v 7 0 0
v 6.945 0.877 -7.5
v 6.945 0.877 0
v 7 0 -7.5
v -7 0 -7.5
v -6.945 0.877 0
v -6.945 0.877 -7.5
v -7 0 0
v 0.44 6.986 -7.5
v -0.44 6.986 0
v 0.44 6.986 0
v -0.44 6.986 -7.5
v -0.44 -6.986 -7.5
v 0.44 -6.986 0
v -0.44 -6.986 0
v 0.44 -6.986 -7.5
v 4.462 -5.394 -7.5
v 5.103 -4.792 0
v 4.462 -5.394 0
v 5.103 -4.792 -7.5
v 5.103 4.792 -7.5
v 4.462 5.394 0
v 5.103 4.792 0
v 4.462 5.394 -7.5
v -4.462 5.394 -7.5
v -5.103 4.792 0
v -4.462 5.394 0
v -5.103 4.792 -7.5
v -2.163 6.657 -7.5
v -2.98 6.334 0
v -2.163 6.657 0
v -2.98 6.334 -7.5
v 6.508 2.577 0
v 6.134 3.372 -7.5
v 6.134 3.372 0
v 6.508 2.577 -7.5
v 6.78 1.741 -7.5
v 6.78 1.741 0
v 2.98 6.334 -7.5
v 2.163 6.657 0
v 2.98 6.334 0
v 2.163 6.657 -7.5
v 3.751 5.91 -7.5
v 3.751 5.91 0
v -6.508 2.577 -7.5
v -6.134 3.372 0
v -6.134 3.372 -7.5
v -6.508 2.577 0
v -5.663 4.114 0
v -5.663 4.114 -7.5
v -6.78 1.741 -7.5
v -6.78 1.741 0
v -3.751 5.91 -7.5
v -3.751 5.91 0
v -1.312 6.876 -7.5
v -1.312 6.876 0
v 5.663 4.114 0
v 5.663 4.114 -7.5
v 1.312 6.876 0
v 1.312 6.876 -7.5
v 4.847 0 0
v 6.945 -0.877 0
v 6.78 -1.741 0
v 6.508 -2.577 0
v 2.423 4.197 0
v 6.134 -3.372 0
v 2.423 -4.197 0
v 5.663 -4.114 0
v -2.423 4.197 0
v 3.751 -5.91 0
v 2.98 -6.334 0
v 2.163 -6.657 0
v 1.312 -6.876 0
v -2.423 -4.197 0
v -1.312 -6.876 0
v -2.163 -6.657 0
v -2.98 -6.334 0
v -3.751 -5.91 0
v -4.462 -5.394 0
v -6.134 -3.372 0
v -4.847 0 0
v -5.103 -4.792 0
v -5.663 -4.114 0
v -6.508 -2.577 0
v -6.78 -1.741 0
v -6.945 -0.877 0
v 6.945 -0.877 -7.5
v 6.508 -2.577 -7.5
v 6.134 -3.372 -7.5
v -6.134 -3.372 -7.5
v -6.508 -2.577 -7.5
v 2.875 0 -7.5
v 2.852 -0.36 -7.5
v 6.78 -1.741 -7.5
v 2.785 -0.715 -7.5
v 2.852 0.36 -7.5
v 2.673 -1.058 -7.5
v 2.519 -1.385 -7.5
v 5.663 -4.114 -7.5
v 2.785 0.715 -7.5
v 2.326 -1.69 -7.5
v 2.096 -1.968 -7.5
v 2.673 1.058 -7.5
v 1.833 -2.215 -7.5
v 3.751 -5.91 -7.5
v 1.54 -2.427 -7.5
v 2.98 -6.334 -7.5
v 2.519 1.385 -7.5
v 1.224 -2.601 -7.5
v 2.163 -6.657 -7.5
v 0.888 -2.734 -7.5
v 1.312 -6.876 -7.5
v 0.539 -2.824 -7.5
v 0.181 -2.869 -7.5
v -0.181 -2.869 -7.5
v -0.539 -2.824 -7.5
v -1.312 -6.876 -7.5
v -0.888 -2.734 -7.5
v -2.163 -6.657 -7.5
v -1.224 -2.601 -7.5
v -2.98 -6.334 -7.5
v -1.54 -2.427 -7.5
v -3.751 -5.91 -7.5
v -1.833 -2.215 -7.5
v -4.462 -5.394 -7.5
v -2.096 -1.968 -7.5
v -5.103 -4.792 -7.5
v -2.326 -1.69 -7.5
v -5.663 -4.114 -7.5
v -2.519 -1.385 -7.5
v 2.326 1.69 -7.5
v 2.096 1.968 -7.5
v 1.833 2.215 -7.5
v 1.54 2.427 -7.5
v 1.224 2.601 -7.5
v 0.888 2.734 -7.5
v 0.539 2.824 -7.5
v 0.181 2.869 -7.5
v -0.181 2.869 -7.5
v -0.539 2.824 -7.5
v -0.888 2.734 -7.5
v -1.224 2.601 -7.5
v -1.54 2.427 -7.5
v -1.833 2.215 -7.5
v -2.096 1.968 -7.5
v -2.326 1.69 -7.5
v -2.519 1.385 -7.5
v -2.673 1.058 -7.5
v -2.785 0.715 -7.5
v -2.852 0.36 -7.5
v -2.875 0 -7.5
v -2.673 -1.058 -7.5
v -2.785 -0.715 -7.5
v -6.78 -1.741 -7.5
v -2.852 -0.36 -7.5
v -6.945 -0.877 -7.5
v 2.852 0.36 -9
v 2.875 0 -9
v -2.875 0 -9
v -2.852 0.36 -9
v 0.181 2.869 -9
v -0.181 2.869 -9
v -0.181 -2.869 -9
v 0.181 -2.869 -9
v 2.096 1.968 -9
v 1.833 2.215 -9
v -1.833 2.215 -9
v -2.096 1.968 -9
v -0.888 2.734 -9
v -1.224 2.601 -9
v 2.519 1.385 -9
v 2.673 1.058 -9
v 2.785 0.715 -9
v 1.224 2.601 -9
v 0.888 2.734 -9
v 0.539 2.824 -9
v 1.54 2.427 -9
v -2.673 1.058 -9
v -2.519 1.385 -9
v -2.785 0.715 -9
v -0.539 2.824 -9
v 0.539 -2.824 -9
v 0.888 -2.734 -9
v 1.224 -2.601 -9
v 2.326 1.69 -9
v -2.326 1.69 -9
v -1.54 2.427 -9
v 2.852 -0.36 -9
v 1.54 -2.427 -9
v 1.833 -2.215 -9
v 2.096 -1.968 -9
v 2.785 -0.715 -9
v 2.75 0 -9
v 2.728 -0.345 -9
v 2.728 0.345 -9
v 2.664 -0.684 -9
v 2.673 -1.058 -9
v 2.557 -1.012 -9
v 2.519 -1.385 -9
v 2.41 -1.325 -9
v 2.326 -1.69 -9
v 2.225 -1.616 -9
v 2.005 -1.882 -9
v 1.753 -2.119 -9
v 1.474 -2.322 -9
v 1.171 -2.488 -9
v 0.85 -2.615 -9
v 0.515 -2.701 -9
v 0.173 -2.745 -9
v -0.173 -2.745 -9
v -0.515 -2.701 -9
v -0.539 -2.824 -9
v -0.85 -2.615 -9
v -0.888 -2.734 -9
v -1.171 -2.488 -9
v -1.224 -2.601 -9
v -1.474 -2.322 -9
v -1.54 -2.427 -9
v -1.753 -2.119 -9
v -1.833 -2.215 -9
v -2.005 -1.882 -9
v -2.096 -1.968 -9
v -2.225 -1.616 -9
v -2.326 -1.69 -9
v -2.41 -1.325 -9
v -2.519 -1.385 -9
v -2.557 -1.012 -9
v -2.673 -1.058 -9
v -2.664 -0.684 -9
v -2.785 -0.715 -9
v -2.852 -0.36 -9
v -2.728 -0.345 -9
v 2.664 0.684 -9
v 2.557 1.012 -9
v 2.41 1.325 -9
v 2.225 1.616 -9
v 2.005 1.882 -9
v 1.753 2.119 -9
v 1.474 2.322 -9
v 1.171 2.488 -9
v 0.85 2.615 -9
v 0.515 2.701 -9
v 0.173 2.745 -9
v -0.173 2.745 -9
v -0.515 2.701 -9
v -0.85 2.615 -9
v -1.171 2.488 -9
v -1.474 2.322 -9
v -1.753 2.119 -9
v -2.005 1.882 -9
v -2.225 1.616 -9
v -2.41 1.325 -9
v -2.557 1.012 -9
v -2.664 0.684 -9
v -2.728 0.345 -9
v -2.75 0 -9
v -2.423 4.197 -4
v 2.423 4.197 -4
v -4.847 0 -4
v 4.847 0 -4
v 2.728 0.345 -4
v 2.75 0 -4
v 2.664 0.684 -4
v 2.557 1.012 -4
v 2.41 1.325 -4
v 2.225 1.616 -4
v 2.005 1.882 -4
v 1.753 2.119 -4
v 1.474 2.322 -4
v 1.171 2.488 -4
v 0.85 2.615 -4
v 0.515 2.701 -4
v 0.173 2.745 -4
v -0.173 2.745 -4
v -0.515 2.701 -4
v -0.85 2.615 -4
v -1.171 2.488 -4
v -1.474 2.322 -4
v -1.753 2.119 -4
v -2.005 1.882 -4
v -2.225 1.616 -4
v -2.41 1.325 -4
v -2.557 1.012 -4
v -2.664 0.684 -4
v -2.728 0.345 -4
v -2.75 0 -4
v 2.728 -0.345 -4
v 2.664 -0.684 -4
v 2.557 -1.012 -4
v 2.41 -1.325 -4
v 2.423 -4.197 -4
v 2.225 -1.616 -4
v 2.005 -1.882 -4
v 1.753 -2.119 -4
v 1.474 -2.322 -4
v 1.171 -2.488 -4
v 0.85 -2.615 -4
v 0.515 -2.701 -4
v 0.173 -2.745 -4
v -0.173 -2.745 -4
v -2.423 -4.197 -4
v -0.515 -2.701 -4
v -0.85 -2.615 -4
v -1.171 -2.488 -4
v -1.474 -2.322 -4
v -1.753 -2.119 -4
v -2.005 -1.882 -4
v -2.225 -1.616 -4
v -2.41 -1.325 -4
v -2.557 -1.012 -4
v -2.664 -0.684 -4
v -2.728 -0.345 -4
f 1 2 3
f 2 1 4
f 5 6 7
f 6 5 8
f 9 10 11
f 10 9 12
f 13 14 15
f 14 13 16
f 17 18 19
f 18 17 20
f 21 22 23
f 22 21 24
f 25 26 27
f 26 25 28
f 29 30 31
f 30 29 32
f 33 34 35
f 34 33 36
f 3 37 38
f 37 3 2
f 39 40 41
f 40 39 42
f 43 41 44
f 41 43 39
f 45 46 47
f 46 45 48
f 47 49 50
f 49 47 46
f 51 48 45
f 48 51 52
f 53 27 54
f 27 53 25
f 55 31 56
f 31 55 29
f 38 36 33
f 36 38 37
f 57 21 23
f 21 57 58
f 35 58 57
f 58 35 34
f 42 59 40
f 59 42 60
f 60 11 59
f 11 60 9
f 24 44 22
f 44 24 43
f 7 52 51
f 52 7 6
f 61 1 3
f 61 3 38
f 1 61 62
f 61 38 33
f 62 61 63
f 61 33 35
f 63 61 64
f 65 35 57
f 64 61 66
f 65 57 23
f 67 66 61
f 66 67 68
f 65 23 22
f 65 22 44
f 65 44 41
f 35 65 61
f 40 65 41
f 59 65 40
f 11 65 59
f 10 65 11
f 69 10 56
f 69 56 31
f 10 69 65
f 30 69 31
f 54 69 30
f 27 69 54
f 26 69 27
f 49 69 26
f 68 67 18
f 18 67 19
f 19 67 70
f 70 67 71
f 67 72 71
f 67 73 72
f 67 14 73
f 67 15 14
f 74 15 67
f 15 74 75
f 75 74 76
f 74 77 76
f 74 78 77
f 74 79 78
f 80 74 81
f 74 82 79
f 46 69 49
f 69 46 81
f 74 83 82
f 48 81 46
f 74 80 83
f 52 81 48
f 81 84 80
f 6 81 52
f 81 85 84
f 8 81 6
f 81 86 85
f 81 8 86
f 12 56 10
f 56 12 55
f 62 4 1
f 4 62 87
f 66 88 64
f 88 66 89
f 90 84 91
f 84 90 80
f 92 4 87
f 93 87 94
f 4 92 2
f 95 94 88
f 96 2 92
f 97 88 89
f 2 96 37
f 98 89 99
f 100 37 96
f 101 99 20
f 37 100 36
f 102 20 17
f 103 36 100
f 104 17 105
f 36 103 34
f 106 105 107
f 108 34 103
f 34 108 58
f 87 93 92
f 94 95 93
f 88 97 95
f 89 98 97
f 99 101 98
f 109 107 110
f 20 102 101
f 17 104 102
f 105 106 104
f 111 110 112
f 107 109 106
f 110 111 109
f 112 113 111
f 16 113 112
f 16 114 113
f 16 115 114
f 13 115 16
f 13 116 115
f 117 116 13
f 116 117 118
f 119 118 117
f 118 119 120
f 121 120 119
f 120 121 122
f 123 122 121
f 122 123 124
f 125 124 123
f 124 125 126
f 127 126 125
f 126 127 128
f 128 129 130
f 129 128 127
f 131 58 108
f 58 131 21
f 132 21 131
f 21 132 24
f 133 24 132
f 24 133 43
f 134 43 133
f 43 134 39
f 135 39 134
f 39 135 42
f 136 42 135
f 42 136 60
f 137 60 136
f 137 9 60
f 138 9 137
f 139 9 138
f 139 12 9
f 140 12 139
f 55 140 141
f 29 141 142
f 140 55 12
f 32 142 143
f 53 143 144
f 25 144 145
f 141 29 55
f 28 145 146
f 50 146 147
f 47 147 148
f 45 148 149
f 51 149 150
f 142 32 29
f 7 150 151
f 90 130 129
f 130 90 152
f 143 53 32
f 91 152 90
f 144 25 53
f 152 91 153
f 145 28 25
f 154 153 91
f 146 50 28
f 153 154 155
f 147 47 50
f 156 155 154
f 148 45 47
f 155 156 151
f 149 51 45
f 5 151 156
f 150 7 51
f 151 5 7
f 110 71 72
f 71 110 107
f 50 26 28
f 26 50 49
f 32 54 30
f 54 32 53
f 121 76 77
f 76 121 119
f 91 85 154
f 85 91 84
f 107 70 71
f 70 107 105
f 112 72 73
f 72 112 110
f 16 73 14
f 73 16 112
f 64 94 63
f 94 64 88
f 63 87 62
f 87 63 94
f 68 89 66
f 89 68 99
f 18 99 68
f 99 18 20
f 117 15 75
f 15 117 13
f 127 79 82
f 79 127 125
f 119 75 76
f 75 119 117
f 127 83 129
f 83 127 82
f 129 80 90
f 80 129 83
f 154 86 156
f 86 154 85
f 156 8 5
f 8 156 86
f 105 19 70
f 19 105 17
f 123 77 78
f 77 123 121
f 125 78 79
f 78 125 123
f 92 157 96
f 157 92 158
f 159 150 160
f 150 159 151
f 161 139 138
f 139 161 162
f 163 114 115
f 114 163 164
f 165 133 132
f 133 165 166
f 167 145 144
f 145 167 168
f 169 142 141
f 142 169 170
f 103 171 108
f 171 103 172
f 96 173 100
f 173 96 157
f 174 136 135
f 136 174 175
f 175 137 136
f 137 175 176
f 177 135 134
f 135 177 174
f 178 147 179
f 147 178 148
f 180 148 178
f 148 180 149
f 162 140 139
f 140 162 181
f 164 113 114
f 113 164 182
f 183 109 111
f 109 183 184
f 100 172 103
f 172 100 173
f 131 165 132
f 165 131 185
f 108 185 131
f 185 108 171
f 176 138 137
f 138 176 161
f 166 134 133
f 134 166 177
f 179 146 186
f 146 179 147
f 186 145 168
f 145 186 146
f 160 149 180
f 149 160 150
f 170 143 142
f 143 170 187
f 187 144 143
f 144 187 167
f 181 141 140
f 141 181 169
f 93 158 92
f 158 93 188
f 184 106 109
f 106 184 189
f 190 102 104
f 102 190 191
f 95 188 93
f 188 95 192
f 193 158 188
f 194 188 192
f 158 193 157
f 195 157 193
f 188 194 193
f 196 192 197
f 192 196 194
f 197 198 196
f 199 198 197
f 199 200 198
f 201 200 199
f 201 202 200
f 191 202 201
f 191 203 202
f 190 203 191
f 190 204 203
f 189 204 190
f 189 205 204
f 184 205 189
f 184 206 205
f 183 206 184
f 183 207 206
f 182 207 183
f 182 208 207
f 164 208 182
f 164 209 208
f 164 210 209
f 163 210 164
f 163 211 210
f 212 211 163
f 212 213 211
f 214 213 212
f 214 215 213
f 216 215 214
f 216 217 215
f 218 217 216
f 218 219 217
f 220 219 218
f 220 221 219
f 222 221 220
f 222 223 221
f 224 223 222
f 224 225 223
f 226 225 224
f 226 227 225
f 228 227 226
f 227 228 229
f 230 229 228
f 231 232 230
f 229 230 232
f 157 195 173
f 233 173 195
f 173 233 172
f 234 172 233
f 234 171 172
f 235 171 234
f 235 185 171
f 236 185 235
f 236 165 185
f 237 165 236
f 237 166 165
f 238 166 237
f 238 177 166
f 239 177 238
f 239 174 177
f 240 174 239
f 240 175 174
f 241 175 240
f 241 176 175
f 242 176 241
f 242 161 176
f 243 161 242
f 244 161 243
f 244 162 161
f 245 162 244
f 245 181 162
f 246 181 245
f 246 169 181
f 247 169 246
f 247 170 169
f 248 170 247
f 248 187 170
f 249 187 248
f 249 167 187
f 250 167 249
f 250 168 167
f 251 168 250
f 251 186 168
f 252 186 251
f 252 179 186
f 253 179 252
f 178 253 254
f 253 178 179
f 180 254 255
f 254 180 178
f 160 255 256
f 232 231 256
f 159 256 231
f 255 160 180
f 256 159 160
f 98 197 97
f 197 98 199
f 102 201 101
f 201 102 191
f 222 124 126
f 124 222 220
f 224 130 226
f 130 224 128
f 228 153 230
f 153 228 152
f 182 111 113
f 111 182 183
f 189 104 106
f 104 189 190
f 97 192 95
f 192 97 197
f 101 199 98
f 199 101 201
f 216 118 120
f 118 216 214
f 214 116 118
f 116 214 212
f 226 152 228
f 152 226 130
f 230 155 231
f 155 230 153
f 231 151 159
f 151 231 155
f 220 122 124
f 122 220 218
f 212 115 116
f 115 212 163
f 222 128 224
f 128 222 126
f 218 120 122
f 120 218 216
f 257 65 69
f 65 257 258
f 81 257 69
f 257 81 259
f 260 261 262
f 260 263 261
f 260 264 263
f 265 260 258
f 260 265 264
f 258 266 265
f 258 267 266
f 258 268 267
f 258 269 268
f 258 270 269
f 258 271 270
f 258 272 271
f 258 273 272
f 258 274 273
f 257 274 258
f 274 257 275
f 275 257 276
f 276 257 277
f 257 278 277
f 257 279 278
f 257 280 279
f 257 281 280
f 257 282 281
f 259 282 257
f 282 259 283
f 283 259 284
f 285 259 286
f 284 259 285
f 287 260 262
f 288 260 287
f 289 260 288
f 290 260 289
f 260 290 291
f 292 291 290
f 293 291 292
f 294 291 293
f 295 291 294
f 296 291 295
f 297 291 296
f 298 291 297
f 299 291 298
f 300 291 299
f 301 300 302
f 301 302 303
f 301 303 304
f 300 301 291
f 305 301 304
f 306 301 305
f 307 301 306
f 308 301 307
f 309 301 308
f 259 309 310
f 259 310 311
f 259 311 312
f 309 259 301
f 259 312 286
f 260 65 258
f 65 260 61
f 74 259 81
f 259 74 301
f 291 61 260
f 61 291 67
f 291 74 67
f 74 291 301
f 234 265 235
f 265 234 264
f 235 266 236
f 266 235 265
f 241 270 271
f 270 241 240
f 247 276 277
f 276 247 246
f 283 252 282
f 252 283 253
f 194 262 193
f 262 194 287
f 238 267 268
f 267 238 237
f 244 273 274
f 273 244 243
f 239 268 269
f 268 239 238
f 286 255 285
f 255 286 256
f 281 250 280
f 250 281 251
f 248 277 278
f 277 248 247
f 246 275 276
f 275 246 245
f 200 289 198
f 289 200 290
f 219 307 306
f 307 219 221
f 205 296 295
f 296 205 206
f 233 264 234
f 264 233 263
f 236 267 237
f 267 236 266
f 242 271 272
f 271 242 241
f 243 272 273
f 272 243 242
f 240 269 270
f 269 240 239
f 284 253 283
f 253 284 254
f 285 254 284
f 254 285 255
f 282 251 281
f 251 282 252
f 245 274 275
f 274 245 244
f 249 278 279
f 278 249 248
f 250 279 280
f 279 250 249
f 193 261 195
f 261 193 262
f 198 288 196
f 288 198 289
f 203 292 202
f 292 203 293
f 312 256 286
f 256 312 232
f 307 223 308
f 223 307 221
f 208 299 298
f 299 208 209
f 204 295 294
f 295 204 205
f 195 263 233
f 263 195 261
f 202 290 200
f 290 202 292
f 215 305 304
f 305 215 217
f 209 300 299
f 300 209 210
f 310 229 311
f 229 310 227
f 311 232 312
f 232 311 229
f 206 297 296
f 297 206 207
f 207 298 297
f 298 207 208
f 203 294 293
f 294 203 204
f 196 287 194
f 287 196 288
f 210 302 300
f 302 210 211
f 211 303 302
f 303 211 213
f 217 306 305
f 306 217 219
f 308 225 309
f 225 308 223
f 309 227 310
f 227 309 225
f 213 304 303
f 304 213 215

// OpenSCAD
$fn = 50;


difference() {
	union() {
		translate(v = [0, 0, -7.5000000000]) {
			cylinder(h = 7.5000000000, r = 7.0000000000);
		}
		translate(v = [0, 0, -9.0000000000]) {
			cylinder(h = 9, r = 2.8750000000);
		}
	}
	union() {
		translate(v = [0, 0, 0]) {
			rotate(a = [0, 0, 0]) {
				difference() {
					union() {
						translate(v = [0, 0, -4]) {
							linear_extrude(height = 4) {
								polygon(points = [[4.8468000000, 0.0000000000], [2.4234000000, 4.1974519271], [-2.4234000000, 4.1974519271], [-4.8468000000, 0.0000000000], [-2.4234000000, -4.1974519271], [2.4234000000, -4.1974519271]]);
							}
						}
					}
					union();
				}
			}
		}
		#translate(v = [0, 0, -100.0000000000]) {
			cylinder(h = 200, r = 2.7500000000);
		}
	}
}
